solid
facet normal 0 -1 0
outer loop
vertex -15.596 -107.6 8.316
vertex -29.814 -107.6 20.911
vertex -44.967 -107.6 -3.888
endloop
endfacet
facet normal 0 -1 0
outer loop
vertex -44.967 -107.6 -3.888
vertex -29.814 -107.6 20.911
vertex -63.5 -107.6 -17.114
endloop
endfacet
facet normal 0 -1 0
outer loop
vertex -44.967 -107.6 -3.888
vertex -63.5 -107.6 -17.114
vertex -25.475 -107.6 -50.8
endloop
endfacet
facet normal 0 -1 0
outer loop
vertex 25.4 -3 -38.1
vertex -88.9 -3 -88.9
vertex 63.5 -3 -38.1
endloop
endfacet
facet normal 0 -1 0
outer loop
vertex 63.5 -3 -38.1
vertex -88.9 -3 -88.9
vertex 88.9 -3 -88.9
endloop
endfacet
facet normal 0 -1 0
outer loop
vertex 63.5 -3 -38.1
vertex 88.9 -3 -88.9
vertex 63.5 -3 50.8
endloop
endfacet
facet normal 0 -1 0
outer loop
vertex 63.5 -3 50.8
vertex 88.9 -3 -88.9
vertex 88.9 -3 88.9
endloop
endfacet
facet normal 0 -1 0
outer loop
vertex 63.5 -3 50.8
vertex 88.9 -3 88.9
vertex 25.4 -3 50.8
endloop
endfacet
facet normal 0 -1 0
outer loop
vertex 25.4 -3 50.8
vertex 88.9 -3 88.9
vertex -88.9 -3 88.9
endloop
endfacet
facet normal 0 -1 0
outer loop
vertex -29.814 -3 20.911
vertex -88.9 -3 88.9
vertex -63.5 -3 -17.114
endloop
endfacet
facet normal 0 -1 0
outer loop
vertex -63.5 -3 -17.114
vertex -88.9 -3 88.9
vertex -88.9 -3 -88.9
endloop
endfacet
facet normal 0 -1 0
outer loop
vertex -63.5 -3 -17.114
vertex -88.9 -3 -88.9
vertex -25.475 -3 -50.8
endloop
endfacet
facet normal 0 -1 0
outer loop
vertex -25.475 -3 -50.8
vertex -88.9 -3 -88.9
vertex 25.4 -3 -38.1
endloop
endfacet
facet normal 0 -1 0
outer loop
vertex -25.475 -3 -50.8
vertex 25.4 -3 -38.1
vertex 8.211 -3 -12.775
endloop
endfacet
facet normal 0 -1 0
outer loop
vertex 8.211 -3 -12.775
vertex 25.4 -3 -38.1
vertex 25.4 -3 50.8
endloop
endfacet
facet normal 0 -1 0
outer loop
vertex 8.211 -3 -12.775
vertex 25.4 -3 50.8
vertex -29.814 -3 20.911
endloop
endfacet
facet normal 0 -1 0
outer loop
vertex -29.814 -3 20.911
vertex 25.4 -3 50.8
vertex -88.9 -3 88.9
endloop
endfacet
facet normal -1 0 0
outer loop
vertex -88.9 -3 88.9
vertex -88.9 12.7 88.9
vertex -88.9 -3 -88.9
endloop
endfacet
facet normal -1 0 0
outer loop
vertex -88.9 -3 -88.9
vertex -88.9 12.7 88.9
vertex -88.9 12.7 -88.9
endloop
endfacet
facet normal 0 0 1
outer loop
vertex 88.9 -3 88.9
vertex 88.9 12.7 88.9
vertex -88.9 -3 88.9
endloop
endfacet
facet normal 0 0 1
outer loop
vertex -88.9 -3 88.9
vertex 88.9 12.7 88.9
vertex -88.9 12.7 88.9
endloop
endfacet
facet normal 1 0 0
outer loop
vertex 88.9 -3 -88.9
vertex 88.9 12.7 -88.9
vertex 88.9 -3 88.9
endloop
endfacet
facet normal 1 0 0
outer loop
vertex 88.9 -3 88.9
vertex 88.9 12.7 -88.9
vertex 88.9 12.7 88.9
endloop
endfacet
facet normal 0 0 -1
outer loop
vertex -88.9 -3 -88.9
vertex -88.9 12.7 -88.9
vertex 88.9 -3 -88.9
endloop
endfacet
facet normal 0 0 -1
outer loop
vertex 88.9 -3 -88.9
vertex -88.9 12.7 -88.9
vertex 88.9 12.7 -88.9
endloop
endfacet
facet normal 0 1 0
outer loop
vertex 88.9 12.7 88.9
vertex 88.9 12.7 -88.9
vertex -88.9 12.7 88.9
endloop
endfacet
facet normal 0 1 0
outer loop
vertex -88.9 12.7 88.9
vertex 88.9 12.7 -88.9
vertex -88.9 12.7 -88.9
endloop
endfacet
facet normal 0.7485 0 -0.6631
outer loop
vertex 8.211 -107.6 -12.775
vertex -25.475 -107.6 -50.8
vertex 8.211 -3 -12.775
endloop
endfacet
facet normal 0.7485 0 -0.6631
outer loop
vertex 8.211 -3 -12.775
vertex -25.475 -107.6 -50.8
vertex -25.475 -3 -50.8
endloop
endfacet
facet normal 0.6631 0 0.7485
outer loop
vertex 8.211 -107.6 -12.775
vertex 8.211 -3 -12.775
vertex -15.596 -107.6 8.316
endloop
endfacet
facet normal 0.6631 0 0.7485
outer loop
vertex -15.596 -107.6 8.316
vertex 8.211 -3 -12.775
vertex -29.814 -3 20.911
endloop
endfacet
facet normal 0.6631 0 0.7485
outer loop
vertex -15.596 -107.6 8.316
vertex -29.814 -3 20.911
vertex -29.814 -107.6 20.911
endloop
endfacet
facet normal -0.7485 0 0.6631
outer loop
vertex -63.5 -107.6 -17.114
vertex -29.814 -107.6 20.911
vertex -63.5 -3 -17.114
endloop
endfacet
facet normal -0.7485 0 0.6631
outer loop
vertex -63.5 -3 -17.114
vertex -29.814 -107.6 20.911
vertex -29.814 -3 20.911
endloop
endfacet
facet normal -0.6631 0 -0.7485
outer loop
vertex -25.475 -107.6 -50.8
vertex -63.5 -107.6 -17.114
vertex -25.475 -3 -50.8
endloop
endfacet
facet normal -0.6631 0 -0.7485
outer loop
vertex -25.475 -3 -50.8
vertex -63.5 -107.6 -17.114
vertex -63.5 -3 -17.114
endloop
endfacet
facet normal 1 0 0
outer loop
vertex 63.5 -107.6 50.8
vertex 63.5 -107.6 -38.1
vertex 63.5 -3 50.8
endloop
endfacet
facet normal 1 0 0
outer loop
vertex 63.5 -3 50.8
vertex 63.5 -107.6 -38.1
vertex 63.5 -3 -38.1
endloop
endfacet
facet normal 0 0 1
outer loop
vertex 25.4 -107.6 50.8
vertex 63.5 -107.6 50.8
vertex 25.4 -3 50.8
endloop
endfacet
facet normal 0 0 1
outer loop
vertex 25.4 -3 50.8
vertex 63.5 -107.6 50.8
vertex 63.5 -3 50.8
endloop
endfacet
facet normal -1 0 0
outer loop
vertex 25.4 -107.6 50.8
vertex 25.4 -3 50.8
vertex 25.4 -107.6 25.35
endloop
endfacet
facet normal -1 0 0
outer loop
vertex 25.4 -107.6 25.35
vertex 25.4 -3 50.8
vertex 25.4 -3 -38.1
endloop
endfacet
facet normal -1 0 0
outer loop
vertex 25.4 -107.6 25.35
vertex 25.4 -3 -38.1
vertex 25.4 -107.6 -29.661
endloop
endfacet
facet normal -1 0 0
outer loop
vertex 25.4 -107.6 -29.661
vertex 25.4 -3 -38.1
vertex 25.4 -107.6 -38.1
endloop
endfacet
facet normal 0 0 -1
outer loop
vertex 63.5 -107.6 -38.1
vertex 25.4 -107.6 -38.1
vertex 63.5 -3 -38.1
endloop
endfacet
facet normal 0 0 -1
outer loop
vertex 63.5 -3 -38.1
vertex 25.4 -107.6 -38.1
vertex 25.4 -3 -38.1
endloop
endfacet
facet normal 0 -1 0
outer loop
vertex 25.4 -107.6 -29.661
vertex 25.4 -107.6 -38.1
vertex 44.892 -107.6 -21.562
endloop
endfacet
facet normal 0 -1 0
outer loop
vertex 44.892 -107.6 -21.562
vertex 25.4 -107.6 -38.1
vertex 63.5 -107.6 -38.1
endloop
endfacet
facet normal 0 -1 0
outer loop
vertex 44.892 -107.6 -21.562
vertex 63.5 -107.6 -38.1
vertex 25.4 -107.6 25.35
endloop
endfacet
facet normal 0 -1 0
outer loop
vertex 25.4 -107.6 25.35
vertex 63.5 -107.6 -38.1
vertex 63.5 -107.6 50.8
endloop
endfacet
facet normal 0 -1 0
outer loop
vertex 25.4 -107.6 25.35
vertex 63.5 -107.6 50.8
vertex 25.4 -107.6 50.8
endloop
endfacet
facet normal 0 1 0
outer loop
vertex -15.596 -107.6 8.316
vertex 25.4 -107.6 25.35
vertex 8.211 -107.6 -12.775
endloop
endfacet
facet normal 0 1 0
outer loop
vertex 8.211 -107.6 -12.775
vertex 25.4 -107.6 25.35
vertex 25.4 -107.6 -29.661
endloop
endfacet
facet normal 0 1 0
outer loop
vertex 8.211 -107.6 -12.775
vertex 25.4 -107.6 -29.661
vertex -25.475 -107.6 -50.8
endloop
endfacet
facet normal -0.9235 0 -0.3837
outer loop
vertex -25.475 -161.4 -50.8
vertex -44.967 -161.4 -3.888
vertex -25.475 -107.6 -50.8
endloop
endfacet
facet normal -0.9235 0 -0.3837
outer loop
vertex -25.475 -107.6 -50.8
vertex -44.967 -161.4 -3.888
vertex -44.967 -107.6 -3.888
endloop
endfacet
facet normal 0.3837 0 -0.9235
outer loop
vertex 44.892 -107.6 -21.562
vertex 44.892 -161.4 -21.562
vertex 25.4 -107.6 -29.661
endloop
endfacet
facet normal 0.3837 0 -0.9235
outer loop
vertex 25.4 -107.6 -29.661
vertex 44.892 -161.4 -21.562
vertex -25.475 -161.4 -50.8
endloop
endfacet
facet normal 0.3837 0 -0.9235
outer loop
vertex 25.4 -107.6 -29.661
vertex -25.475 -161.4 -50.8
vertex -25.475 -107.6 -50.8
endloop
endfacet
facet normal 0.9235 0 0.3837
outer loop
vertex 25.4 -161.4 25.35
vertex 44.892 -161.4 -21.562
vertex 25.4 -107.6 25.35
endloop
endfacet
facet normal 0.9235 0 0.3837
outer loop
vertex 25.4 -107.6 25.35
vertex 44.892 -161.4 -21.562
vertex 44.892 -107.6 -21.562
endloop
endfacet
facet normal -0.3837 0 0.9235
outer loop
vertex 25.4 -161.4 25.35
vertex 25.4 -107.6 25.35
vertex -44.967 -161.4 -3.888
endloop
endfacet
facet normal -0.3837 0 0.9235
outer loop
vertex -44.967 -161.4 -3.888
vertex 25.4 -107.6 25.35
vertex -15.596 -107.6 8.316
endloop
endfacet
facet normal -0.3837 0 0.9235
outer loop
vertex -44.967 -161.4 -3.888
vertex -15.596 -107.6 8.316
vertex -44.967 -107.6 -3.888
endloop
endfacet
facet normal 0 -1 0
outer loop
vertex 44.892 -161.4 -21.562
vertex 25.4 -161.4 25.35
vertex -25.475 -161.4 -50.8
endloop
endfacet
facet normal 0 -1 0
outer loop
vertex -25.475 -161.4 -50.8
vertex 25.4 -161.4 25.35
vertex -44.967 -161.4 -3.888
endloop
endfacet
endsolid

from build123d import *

# Parameters (mm, degrees)
SKETCH2_W           = 177.8
SKETCH2_H           = 177.8
BOSS_EXTRUDE2_DEPTH = 12.7
SKETCH2_2_W         = 177.8
SKETCH2_2_H         = 177.8
BOSS_EXTRUDE3_DEPTH = 3
SKETCH3_W           = 38.1
SKETCH3_H           = 88.9
BOSS_EXTRUDE4_DEPTH = 104.6
BOSS_EXTRUDE5_DEPTH = 53.8


with BuildPart() as part:
    # Sketch2 → Boss-Extrude2 (new body)
    with BuildSketch(Plane(origin=(0, 0, 0), x_dir=(1, 0, 0), z_dir=(0, 1, 0))):
        Rectangle(SKETCH2_W, SKETCH2_H)
    extrude(amount=BOSS_EXTRUDE2_DEPTH)

    # Sketch2<2> → Boss-Extrude3 (add)
    with BuildSketch(Plane(origin=(0, 0, 0), x_dir=(1, 0, 0), z_dir=(0, 1, 0))):
        Rectangle(SKETCH2_2_W, SKETCH2_2_H)
    extrude(amount=-BOSS_EXTRUDE3_DEPTH)

    # Sketch3 → Boss-Extrude4 (add)
    with BuildSketch(Plane.XZ.offset(3)):
        Polygon((-25.475339684, -50.8), (-63.5, -17.113723747), (-29.813723747, 20.91093657), (8.21093657, -12.775339684), align=None)
        with Locations((44.45, 6.35)):
            Rectangle(SKETCH3_W, SKETCH3_H)
    extrude(amount=BOSS_EXTRUDE4_DEPTH)

    # Sketch4 → Boss-Extrude5 (add)
    with BuildSketch(Plane.XZ.offset(107.6)):
        Polygon((-25.475339684, -50.8), (44.89207381, -21.561889285), (25.4, 25.349719711), (-44.967413494, -3.888391004), align=None)
    extrude(amount=BOSS_EXTRUDE5_DEPTH)


solid = part.part
